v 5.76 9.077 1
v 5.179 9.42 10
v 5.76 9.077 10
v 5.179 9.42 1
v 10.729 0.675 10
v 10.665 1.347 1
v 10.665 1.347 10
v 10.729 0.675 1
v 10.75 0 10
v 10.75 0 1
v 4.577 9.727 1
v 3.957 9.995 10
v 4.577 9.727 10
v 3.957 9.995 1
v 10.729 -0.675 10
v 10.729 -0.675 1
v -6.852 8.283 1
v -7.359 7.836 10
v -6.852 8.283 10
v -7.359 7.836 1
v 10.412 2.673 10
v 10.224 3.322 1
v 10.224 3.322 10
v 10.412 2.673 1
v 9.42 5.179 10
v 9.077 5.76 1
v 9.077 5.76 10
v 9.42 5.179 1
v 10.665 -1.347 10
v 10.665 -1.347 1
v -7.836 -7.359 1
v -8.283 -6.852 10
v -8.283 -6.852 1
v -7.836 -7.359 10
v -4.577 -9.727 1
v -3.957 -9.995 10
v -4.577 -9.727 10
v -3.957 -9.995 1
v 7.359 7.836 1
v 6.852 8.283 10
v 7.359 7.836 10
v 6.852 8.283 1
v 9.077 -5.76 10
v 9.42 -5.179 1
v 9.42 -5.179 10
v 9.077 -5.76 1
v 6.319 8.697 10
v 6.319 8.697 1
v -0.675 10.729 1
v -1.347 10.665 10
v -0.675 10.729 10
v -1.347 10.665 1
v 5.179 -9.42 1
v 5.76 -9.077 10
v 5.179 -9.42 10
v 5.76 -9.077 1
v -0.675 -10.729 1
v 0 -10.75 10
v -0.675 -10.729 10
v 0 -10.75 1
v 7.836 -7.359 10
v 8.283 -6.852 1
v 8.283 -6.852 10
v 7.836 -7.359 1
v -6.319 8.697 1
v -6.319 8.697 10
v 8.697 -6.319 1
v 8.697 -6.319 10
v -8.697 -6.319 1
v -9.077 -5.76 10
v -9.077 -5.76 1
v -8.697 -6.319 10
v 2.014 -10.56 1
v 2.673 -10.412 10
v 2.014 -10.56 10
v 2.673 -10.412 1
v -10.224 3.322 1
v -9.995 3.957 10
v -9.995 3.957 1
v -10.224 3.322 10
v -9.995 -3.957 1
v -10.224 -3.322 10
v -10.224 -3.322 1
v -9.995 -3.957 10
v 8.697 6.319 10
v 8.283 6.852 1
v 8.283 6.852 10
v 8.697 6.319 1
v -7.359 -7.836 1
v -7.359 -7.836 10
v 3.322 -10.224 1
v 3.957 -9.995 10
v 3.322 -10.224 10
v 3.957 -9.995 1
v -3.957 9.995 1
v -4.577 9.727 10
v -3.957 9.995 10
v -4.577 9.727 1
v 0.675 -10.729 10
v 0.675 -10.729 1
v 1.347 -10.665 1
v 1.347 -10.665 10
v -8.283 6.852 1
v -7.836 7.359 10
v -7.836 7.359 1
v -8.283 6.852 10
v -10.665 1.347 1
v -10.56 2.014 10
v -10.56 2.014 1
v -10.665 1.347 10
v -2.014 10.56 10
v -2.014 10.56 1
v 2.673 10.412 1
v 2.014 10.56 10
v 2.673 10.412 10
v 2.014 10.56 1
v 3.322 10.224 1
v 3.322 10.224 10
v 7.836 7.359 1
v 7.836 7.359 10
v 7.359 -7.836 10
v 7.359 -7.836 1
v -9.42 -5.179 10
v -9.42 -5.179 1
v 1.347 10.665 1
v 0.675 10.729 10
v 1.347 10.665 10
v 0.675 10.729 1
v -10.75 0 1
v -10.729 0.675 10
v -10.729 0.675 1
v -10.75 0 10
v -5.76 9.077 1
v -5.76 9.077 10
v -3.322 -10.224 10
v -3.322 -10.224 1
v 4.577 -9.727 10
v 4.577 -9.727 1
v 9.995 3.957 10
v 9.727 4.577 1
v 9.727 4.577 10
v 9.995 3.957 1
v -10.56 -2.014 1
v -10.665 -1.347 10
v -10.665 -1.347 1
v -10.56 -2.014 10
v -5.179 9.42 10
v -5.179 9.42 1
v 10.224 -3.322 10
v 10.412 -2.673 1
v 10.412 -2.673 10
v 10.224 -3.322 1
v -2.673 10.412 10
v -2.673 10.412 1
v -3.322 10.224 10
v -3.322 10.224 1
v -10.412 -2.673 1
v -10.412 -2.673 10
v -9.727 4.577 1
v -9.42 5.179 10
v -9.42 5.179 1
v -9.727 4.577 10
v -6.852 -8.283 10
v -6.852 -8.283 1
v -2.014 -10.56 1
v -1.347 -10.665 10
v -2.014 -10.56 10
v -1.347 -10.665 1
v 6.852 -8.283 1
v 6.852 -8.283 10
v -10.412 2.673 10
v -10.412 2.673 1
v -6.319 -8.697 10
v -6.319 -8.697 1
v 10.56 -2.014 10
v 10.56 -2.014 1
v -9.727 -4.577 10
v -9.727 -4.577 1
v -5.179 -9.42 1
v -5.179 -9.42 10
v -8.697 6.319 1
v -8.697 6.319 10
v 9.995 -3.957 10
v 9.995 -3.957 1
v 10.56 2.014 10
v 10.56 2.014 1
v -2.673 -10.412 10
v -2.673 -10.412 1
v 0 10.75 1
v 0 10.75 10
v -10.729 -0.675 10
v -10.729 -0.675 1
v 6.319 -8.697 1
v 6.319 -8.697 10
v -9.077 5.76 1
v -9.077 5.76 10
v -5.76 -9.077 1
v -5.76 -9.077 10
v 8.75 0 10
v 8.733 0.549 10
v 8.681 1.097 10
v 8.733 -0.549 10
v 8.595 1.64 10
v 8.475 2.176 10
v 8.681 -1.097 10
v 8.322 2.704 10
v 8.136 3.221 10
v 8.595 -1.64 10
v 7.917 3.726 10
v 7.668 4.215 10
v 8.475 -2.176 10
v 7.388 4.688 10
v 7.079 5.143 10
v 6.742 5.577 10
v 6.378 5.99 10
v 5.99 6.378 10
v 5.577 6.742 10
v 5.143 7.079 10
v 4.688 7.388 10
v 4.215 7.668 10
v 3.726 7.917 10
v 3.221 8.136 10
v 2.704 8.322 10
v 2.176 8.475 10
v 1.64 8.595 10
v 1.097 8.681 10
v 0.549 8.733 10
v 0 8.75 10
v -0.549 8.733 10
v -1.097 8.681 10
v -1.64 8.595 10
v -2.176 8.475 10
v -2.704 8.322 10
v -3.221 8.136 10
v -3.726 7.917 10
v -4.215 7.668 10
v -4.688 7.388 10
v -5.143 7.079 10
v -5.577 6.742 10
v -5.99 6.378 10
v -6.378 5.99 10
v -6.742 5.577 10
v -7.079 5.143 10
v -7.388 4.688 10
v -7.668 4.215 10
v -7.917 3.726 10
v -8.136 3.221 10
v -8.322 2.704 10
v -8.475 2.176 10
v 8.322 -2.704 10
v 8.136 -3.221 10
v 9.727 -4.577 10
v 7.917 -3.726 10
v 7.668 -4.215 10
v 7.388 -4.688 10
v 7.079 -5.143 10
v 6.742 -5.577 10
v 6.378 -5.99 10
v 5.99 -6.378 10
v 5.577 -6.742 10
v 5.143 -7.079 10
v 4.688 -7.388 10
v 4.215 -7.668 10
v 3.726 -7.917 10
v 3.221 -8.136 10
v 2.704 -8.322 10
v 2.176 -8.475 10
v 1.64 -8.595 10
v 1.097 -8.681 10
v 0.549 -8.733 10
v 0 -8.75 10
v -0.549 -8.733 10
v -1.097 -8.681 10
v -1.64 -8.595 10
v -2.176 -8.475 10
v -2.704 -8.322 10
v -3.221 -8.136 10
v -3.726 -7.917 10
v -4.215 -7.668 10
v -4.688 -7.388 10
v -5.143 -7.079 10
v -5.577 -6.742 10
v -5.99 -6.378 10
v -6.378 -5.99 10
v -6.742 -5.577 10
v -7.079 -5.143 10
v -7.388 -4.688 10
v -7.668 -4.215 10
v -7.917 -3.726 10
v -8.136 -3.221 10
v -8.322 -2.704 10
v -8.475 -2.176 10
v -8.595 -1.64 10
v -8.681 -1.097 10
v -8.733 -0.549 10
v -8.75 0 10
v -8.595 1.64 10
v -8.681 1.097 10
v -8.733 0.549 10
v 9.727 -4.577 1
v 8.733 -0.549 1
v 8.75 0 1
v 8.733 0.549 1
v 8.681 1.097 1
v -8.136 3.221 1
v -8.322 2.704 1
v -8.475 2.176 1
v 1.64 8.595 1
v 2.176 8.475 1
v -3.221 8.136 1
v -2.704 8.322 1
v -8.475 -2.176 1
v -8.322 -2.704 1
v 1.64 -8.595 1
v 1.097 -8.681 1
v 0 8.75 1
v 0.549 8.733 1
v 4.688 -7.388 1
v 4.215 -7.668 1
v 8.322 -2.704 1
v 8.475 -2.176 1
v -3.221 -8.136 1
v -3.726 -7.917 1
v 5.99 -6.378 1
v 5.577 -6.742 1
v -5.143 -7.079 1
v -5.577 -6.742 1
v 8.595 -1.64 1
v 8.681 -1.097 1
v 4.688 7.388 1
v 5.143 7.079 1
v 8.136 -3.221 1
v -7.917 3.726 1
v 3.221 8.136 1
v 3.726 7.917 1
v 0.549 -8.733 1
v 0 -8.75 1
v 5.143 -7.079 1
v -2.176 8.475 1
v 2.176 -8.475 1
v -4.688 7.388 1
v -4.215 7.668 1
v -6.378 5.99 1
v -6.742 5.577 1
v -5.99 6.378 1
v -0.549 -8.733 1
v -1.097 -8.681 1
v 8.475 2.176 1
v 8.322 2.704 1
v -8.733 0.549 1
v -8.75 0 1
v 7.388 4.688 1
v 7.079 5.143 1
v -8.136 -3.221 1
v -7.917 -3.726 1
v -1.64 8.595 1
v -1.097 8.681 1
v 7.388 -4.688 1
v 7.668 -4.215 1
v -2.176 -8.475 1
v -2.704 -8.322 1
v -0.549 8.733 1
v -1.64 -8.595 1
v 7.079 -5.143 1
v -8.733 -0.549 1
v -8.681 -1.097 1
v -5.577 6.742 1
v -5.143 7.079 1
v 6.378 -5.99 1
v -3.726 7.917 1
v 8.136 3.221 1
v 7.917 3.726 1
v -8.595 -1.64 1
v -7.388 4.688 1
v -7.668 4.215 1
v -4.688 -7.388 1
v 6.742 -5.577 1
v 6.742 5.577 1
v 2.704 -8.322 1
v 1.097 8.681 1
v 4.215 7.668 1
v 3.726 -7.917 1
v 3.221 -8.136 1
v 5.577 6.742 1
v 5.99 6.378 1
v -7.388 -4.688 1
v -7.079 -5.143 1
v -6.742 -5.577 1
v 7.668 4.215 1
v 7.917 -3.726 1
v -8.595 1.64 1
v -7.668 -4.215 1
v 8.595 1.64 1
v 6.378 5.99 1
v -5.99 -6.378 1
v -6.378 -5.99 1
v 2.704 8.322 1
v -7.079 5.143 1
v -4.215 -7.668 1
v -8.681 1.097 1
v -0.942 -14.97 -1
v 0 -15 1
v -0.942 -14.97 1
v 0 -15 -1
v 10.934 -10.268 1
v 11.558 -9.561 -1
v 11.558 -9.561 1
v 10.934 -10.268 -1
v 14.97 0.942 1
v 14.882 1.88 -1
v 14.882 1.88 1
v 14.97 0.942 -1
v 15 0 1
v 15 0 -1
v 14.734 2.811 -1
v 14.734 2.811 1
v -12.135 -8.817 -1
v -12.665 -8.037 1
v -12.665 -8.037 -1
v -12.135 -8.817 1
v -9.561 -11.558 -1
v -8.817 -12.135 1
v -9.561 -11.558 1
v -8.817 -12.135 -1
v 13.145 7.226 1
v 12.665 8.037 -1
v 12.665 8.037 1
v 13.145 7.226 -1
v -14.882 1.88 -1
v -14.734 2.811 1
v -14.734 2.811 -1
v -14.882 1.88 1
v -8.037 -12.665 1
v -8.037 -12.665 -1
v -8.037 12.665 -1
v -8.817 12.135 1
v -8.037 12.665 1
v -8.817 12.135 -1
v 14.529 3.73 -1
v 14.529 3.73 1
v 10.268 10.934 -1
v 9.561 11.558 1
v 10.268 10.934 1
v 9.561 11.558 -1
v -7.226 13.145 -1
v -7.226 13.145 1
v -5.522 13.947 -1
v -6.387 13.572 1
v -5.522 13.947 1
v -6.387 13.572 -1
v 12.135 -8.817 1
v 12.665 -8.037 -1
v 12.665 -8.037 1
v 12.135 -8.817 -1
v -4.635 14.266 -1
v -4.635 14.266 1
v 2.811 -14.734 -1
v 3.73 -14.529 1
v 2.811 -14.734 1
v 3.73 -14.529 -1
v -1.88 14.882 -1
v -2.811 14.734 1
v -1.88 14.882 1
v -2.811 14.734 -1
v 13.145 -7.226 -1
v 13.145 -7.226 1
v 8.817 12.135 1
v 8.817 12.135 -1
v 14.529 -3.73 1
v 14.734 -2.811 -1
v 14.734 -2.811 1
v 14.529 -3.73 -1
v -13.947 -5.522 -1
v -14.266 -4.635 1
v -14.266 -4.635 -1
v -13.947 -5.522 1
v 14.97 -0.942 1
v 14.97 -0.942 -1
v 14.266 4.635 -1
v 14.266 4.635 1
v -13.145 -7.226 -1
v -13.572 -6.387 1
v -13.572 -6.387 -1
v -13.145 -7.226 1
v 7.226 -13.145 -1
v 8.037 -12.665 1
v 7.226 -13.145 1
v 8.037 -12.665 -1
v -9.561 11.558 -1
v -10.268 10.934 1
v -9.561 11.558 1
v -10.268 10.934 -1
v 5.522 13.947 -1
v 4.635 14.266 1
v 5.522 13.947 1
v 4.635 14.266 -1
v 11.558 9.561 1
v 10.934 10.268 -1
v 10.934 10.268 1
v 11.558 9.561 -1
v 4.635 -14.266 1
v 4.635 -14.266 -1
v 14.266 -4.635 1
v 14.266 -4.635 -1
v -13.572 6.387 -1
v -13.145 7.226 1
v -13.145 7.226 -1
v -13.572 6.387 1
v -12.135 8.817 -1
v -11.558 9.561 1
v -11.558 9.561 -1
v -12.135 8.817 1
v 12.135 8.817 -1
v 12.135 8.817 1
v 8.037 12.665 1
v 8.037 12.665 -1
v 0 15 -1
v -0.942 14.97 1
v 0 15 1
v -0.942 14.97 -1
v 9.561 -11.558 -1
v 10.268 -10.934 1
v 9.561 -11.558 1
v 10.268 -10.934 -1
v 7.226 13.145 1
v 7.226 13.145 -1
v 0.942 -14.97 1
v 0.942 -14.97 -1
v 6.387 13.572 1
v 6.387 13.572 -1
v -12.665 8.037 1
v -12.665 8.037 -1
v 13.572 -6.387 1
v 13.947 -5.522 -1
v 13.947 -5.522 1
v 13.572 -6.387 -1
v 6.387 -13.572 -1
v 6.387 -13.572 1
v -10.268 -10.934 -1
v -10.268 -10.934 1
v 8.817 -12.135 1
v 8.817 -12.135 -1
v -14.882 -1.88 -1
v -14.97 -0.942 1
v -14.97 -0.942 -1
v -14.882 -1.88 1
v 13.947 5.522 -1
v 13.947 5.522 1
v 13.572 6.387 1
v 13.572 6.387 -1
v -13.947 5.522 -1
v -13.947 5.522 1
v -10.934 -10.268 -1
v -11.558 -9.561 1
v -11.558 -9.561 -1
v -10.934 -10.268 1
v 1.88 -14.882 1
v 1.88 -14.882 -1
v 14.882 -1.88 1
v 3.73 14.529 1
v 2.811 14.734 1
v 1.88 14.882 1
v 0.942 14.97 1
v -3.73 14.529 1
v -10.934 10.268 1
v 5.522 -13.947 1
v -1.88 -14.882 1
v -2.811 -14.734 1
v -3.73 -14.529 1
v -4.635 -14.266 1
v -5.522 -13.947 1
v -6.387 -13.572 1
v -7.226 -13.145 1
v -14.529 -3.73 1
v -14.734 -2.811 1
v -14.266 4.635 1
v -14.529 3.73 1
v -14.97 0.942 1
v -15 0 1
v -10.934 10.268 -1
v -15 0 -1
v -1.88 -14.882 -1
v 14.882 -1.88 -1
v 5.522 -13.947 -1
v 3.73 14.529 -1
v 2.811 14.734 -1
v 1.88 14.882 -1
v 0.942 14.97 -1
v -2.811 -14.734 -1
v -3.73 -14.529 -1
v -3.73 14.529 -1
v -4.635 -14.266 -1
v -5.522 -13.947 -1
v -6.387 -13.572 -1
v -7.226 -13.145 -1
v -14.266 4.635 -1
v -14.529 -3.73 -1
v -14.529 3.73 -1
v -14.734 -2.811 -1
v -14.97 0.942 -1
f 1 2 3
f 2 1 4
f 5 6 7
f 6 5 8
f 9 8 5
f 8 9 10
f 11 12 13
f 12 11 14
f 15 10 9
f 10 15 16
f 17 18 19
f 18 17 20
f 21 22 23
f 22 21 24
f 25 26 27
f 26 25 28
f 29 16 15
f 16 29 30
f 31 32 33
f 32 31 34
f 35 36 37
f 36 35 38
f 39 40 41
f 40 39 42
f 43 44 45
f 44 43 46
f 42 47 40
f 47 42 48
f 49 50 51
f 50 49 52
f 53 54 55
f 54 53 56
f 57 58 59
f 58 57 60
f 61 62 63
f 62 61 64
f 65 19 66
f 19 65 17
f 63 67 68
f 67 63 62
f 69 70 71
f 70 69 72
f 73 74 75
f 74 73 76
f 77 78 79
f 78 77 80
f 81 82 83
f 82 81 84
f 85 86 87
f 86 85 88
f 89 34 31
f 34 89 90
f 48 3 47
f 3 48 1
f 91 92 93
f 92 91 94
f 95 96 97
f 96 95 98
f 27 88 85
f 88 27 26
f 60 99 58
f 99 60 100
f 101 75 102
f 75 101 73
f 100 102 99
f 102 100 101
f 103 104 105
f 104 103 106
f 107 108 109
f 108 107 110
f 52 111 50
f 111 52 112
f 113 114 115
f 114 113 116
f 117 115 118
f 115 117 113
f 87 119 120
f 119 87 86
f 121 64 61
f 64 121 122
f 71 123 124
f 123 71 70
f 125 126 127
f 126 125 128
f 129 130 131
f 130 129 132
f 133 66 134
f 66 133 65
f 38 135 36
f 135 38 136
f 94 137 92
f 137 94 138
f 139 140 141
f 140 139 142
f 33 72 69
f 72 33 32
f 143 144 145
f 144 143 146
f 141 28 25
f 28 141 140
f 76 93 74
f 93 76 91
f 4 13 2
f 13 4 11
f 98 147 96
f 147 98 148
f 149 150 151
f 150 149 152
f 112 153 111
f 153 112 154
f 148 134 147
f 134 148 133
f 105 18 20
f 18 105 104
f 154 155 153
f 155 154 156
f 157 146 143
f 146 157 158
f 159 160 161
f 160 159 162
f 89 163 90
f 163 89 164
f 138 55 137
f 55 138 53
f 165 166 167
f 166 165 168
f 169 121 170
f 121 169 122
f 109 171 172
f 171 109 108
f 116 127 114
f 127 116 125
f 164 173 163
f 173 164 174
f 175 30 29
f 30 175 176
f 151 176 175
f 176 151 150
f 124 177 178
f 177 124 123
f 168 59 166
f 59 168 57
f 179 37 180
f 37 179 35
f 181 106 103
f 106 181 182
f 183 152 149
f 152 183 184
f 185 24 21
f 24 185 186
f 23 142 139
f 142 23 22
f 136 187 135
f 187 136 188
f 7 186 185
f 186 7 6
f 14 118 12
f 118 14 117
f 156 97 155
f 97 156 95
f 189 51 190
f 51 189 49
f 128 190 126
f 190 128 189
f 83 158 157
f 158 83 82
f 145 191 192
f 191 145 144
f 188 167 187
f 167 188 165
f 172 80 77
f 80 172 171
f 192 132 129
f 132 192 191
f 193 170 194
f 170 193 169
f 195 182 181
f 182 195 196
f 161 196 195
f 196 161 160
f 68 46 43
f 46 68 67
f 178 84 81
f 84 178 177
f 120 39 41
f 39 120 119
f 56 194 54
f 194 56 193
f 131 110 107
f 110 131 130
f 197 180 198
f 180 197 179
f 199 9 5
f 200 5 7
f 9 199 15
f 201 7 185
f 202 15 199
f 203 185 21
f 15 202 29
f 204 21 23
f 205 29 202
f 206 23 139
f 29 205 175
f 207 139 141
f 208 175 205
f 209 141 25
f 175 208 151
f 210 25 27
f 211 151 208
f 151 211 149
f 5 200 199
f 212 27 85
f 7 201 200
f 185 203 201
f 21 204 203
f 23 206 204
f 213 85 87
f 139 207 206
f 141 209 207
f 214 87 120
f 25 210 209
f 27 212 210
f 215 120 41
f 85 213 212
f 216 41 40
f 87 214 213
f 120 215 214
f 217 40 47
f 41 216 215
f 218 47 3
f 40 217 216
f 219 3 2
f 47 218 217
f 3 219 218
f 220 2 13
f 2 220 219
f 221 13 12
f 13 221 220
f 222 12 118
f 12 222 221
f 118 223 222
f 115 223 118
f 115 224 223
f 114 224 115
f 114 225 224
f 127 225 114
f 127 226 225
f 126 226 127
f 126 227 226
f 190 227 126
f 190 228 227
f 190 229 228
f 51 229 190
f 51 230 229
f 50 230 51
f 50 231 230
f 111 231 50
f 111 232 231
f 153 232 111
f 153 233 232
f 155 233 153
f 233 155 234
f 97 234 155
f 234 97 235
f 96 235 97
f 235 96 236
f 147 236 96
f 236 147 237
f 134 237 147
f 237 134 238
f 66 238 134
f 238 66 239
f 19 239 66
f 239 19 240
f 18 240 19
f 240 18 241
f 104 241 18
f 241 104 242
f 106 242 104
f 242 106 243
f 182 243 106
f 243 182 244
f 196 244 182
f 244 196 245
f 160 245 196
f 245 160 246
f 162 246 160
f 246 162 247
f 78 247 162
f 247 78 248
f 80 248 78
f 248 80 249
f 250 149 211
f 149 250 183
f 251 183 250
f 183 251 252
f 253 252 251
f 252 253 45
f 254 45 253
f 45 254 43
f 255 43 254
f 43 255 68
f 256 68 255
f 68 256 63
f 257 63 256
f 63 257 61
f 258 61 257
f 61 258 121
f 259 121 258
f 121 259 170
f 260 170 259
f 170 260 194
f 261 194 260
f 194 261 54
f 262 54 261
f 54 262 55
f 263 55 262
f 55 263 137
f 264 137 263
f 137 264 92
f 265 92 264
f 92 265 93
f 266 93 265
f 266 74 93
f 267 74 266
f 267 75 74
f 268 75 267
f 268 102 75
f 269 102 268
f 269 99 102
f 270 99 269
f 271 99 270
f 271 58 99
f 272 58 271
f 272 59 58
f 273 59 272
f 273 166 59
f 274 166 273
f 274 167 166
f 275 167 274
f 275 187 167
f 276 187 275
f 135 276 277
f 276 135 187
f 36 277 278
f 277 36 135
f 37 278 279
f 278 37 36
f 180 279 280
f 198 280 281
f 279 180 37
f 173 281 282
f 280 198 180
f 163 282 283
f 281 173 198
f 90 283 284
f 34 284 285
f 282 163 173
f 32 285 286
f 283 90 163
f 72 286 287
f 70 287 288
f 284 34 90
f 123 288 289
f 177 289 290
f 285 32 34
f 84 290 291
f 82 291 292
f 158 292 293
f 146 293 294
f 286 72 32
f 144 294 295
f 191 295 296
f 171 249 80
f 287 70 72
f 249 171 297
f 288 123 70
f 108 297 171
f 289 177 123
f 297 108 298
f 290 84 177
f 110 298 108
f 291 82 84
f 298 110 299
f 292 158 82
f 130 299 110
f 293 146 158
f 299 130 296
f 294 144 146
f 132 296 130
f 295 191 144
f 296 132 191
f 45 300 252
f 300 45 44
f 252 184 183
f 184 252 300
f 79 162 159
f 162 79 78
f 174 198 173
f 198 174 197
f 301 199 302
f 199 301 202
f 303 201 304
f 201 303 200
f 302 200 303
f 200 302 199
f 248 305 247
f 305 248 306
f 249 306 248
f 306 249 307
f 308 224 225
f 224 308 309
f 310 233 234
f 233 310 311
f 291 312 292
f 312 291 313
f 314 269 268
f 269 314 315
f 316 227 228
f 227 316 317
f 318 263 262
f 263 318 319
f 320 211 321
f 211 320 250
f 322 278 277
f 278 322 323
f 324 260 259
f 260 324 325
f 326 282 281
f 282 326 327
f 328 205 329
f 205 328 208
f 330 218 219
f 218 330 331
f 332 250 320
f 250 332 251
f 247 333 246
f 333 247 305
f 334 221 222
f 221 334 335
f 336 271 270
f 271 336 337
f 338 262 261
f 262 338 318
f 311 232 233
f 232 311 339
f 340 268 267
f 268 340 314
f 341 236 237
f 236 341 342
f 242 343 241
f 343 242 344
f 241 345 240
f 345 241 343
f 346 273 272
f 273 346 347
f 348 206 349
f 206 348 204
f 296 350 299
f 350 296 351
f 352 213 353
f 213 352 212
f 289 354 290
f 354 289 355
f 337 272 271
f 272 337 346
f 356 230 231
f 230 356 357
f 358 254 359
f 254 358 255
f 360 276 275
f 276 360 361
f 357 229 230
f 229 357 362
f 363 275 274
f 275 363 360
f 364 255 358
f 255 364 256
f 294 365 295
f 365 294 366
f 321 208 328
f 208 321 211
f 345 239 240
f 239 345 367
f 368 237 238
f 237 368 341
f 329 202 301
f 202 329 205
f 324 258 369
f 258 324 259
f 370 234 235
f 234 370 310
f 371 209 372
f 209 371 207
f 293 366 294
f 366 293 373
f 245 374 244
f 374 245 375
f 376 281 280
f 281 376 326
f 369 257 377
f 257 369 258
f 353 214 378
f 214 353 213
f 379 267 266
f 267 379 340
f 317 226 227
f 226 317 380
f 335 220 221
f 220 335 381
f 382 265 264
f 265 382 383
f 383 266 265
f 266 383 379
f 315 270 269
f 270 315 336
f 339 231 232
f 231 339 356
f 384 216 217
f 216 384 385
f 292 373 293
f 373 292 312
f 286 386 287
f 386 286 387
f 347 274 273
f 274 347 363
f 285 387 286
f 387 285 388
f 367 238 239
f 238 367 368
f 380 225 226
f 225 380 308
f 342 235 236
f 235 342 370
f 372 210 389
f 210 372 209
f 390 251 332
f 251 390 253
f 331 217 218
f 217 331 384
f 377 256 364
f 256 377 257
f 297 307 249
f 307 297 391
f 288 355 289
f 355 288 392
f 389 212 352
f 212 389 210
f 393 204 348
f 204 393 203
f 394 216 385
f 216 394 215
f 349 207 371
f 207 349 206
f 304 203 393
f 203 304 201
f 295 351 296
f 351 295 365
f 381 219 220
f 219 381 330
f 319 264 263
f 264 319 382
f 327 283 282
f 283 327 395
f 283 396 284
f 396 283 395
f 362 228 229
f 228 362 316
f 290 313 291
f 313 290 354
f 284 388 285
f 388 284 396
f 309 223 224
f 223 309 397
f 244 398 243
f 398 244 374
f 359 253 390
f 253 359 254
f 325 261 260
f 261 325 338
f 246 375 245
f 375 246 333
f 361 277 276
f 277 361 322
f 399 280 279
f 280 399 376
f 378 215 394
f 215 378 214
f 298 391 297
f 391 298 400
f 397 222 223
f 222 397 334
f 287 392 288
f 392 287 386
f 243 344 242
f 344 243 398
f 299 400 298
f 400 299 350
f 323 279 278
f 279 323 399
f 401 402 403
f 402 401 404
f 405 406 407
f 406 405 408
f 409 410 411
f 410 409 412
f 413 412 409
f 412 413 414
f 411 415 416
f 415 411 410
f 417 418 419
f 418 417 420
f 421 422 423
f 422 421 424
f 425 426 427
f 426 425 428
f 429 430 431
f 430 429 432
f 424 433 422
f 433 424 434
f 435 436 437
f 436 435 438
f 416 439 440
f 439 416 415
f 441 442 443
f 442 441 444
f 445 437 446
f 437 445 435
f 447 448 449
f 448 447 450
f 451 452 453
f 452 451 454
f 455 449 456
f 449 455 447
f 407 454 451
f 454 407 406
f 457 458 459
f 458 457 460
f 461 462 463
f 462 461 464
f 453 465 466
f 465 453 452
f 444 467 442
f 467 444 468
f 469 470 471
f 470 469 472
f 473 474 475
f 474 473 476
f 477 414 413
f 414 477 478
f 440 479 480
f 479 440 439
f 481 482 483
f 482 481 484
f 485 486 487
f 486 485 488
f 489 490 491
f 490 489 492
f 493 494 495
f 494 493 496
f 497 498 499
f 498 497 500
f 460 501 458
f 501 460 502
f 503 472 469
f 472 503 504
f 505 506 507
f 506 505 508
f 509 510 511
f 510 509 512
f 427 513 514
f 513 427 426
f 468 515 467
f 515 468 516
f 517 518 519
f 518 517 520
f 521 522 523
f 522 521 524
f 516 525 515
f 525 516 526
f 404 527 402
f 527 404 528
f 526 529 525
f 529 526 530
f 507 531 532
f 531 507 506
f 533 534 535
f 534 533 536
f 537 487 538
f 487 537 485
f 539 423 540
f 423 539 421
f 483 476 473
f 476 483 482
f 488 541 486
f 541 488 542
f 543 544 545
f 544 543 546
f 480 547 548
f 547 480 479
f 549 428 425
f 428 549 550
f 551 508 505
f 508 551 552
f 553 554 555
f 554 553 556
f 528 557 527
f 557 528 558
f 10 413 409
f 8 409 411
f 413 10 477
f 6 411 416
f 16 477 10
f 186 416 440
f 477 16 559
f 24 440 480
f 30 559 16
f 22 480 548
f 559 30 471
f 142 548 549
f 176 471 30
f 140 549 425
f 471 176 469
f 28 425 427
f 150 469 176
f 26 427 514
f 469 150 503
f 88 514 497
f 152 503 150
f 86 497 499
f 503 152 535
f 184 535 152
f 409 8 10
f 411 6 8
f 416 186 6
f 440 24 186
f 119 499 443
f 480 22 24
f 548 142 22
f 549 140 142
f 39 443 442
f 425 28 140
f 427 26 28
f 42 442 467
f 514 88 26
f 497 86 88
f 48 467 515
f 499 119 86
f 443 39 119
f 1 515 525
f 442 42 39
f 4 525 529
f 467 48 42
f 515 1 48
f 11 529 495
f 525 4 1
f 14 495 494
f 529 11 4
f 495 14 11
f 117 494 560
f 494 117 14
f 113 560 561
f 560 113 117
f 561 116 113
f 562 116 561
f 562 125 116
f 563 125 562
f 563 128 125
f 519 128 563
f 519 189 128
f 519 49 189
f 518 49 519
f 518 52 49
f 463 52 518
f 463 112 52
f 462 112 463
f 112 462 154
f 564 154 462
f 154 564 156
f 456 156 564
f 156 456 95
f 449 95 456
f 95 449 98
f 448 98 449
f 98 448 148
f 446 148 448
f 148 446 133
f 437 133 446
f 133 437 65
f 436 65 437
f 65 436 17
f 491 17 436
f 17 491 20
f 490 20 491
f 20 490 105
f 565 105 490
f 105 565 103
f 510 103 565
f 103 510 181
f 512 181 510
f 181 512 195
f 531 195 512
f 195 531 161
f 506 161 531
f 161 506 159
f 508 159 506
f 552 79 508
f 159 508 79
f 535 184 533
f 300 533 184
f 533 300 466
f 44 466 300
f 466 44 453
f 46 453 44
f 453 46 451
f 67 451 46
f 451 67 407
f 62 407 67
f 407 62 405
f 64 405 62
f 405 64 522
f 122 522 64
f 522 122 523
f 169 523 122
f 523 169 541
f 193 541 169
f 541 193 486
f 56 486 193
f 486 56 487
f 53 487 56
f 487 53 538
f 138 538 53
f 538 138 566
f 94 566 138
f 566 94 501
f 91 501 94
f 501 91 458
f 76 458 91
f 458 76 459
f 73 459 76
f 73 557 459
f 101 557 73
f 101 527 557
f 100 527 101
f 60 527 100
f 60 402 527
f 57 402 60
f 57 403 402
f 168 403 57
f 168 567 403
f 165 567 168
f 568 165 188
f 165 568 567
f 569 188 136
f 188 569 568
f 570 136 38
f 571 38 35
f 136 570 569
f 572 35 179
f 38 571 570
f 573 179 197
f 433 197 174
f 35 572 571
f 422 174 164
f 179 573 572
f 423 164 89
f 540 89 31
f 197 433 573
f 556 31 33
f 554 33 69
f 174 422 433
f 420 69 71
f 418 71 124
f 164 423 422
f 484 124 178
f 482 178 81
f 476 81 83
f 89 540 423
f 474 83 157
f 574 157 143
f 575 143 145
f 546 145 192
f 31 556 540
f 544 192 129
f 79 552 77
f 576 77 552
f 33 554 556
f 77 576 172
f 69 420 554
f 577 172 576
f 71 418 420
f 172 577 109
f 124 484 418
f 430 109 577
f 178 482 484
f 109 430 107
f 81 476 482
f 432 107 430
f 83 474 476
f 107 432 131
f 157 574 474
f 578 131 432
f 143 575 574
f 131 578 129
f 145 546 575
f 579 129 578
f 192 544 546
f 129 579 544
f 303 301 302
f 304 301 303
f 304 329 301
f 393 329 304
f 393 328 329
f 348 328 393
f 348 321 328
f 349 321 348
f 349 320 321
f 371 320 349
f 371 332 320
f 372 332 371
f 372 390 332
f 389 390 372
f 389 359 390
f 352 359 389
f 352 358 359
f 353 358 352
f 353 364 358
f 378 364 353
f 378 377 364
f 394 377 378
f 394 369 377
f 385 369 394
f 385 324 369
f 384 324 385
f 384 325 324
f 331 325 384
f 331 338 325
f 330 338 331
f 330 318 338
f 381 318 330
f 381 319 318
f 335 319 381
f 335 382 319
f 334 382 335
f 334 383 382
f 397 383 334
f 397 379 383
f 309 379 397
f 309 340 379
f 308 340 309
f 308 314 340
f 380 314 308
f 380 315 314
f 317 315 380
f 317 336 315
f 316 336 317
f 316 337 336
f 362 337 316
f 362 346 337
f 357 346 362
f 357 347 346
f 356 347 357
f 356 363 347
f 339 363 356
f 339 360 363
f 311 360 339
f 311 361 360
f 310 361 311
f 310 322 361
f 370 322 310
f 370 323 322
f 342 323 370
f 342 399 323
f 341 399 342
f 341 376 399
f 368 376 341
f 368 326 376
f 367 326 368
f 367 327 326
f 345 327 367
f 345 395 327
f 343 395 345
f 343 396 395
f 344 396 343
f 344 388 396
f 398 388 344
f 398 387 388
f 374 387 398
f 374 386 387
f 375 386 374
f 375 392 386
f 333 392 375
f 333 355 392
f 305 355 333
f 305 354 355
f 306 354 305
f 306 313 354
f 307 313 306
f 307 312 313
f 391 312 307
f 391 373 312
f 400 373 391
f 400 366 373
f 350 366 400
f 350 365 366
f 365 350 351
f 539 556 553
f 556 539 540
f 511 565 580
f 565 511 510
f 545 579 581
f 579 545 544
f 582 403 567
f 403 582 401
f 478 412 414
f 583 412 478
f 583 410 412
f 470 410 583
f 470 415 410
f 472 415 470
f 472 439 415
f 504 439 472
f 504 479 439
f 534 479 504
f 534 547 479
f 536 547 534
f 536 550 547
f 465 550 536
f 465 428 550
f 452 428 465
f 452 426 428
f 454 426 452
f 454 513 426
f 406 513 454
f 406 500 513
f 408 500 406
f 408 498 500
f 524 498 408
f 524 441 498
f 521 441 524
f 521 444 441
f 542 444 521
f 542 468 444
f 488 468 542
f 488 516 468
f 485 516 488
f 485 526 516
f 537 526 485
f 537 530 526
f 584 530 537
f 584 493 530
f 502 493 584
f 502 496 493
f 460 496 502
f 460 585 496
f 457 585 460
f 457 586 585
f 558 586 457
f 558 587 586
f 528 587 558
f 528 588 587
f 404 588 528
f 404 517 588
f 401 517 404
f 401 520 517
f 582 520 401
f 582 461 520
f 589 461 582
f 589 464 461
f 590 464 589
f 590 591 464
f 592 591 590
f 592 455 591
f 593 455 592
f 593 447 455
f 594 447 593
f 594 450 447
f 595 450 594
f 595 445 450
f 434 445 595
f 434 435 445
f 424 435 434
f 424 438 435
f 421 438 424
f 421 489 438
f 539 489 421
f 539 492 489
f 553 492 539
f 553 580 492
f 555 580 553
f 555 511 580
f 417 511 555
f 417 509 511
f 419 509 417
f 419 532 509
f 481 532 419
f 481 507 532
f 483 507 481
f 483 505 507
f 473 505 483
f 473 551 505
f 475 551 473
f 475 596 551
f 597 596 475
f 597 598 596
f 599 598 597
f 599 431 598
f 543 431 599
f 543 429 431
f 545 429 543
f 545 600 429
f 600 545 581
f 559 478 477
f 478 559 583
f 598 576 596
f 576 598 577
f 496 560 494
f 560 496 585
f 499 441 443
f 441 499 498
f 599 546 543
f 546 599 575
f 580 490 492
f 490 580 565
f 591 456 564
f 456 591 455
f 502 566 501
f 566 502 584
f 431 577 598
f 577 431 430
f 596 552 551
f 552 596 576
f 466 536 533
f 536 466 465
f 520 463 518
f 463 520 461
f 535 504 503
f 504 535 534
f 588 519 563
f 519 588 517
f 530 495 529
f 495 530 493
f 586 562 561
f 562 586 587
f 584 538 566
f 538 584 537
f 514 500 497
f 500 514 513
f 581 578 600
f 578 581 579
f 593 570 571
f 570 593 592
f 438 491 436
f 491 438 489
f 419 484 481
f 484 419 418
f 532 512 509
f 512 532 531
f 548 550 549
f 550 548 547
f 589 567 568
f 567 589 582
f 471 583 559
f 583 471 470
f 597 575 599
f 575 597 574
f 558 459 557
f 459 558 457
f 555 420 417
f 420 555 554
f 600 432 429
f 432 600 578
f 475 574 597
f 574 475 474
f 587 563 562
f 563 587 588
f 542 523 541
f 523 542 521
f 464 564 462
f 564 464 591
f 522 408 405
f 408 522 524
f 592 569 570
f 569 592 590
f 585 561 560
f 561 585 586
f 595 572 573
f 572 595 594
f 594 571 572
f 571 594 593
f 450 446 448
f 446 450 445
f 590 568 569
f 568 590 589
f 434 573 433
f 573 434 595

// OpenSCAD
$fn=100;
outFinger=21.5;


Finger(); //shorter and fatter



module Finger(){
    
    translate ([0,0,0]) cylinder(h=2, d=30, center=true);
    translate ([0,0,10/2]) difference(){
            cylinder(h=10, d=outFinger, center=true);//  lower outer cylinder
            translate([0,0,-1]) cylinder(h=13, d=outFinger-4, center=true); //lower inner 
        } 
}
